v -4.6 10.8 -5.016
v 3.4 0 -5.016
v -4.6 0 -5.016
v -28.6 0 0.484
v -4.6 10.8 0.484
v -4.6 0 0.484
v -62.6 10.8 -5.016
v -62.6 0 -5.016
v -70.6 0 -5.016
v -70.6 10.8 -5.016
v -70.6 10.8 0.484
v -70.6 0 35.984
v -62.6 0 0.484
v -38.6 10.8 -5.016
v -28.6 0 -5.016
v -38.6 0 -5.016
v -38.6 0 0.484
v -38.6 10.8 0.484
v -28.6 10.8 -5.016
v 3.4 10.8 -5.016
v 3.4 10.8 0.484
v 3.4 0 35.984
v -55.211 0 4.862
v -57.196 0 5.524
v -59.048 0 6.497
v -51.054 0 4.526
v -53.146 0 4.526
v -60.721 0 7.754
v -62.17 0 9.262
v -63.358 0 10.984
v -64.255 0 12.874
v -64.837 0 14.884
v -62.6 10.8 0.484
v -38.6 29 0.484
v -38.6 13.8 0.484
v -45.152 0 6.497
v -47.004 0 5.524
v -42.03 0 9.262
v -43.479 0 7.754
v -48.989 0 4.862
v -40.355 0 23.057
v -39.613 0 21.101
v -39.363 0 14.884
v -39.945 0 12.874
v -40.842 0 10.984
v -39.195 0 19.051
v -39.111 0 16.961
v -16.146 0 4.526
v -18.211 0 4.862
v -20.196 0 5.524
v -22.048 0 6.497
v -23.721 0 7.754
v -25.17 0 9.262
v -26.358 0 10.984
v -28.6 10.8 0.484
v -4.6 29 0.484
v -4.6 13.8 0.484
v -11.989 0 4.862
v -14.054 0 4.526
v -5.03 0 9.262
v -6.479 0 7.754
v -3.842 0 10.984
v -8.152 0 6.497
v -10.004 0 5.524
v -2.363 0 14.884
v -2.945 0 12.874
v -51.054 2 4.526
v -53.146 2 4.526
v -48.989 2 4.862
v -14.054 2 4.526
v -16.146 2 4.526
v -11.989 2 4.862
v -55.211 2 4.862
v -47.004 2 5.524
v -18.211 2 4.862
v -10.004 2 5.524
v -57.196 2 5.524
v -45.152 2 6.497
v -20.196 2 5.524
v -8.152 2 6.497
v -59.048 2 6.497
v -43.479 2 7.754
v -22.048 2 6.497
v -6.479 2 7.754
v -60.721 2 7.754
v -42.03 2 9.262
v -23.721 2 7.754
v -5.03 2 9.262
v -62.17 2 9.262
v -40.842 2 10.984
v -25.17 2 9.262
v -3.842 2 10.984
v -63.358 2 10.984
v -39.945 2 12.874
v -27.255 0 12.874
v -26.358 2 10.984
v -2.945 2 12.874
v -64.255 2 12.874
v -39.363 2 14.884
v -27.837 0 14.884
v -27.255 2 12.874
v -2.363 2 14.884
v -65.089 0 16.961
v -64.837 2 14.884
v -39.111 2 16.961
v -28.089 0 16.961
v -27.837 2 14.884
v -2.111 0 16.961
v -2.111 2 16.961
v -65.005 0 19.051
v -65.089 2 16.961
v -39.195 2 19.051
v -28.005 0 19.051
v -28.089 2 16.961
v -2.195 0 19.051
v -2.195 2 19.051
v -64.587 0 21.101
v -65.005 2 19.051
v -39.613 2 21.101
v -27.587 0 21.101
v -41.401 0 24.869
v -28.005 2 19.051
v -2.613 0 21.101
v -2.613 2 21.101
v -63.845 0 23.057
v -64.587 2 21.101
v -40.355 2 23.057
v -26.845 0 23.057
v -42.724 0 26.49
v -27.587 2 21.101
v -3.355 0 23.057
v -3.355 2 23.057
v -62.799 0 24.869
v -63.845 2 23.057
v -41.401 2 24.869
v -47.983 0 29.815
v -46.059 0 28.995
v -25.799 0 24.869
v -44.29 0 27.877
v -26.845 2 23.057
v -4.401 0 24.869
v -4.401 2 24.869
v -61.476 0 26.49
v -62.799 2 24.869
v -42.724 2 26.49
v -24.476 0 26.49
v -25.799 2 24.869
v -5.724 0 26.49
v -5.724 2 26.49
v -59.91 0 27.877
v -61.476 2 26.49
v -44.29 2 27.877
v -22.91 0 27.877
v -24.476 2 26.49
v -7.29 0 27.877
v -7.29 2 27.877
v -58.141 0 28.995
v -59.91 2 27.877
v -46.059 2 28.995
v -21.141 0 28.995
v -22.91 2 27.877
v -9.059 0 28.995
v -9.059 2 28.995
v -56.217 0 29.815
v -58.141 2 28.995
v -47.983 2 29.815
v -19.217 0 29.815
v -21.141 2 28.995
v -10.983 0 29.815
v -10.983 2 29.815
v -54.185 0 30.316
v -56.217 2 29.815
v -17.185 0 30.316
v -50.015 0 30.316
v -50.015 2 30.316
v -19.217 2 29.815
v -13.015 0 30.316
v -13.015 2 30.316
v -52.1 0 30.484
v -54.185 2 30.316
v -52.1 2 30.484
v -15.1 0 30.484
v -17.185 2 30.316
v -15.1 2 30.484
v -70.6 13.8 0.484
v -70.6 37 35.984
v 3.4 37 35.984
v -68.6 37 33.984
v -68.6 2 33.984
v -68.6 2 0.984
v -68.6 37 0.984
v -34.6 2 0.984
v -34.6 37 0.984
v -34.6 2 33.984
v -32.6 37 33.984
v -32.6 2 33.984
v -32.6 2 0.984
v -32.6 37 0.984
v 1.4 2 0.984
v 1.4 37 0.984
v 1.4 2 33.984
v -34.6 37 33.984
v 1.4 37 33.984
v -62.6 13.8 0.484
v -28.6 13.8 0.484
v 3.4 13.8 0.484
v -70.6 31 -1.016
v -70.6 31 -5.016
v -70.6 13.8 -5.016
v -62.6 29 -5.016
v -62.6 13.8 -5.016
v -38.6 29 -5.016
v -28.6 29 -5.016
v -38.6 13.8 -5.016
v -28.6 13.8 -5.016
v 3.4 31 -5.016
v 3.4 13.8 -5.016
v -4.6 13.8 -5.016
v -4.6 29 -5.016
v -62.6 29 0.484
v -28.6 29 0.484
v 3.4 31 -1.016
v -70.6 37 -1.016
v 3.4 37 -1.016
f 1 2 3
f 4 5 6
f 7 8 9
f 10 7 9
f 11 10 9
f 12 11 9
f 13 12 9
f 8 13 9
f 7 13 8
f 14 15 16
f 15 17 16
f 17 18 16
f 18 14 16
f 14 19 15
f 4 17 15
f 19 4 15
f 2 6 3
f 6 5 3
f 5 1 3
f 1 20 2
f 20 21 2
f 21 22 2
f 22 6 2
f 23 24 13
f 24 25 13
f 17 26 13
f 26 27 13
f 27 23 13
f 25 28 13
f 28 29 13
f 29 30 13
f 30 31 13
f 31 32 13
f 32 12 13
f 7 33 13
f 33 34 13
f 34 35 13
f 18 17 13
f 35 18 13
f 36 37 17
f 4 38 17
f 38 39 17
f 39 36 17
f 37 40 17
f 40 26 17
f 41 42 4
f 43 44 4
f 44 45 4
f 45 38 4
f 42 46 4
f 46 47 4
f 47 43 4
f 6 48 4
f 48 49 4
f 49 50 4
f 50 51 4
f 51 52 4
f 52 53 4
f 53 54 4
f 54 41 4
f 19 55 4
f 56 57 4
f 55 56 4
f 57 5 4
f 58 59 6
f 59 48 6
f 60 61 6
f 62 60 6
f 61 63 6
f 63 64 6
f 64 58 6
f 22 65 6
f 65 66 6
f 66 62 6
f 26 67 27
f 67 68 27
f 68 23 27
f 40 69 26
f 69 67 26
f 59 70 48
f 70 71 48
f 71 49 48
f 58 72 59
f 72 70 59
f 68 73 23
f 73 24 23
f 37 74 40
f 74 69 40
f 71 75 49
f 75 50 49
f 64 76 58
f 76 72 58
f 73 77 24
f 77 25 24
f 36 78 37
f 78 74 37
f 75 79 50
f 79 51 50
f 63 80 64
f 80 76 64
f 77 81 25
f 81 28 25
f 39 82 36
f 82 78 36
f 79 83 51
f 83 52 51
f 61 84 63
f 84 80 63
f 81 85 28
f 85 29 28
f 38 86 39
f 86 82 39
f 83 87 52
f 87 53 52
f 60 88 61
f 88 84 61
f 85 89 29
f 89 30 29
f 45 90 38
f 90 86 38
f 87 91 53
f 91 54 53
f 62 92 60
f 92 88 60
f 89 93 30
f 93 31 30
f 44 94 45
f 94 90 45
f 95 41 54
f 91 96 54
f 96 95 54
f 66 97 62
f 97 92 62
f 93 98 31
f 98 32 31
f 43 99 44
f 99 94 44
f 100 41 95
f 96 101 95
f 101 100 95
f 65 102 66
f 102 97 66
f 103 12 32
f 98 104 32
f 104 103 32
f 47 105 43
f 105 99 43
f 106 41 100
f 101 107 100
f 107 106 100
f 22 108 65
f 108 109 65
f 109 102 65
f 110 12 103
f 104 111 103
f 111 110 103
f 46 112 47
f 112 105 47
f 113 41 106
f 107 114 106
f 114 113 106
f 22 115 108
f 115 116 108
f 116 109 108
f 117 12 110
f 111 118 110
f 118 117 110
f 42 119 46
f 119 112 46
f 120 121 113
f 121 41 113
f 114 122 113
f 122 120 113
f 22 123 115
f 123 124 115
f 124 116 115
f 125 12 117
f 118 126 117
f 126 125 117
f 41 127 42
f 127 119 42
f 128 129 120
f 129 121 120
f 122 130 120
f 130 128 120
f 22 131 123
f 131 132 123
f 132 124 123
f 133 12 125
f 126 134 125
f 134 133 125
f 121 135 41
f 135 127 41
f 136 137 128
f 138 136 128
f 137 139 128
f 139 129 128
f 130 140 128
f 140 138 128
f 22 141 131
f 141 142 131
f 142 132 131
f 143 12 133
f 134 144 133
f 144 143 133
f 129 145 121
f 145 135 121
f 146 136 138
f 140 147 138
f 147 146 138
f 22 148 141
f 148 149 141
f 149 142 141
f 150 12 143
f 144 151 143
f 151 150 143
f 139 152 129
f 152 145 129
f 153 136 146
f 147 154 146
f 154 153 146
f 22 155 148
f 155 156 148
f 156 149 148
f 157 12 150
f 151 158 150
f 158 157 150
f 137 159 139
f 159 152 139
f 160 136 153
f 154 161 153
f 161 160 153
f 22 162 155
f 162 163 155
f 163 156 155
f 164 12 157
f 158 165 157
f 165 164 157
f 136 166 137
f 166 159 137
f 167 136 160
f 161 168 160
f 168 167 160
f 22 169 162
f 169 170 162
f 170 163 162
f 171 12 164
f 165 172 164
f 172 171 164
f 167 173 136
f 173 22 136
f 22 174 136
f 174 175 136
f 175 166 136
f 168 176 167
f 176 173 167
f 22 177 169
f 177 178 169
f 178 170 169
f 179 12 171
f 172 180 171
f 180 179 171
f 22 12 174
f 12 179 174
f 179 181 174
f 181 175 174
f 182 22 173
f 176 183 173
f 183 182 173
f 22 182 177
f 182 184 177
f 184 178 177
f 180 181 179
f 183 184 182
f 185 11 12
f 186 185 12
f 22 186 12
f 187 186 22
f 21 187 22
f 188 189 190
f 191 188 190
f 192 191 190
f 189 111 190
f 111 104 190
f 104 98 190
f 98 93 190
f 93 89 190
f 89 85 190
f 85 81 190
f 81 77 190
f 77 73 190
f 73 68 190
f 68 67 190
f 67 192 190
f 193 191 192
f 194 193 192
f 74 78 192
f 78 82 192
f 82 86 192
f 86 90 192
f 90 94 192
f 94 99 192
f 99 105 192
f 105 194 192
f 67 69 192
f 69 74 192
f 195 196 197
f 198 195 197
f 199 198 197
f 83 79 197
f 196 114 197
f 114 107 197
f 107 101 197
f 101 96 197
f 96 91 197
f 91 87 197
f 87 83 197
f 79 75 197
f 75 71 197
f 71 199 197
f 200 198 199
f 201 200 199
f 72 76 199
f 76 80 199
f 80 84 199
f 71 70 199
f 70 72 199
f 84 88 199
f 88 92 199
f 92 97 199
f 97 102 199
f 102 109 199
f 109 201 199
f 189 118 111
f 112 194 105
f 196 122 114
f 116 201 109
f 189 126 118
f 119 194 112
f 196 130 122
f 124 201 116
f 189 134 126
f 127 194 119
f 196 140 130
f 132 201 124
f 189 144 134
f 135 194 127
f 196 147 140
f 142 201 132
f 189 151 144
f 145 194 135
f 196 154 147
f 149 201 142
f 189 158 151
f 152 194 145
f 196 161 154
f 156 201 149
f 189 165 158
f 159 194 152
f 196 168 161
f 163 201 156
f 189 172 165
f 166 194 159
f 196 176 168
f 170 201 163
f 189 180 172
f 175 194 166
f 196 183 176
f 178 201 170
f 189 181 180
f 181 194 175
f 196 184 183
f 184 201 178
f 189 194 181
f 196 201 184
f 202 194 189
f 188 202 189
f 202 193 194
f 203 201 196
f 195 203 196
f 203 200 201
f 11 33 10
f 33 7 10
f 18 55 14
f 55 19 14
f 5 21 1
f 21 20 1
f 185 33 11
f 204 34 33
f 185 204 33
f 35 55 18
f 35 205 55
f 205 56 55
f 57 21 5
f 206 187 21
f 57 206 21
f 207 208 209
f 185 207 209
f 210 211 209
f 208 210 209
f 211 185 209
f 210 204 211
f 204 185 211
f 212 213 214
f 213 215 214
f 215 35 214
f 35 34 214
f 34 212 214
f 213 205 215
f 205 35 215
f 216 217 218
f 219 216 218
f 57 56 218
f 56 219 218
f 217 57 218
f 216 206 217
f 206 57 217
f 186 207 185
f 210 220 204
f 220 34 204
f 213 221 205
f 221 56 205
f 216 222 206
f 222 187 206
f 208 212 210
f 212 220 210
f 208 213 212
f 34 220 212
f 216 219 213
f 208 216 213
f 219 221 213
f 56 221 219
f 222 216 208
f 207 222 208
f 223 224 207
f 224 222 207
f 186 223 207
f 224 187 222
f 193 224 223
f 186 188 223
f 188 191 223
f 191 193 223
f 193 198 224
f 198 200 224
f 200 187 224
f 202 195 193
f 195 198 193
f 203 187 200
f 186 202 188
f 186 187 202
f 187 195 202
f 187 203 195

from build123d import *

# Parameters (mm, degrees)
SKETCH1_W           = 74
SKETCH1_H           = 37
BOSS_EXTRUDE1_DEPTH = 37
SKETCH3_W           = 34
SKETCH3_H           = 33
CUT_EXTRUDE1_DEPTH  = 35
SKETCH5_R           = 13
CUT_EXTRUDE2_DEPTH  = 3.5
SKETCH6_W           = 74
SKETCH6_H           = 31
BOSS_EXTRUDE2_DEPTH = 4
CUT_EXTRUDE3_DEPTH  = 5.5


with BuildPart() as part:
    # Sketch1 → Boss-Extrude1 (new body)
    with BuildSketch(Plane(origin=(0, 0, 0), x_dir=(1, 0, 0), z_dir=(0, 1, 0))):
        with Locations((-33.6, -17.484146341)):
            Rectangle(SKETCH1_W, SKETCH1_H)
    extrude(amount=BOSS_EXTRUDE1_DEPTH)

    # Sketch3 → Cut-Extrude1 (cut)
    with BuildSketch(Plane(origin=(0, 37, 0), x_dir=(1, 0, 0), z_dir=(0, 1, 0))):
        with Locations((-51.6, -17.484146341)):
            Rectangle(SKETCH3_W, SKETCH3_H)
        with Locations((-15.6, -17.484146341)):
            Rectangle(SKETCH3_W, SKETCH3_H)
    extrude(amount=-CUT_EXTRUDE1_DEPTH, mode=Mode.SUBTRACT)

    # Sketch5 → Cut-Extrude2 (cut)
    with BuildSketch(Plane(origin=(0, 2, 0), x_dir=(1, 0, 0), z_dir=(0, 1, 0))):
        with Locations(Location((-15.1, -17.484146341, 0), (0, 0, 270))):
            Circle(SKETCH5_R)
        with Locations(Location((-52.1, -17.484146341, 0), (0, 0, 270))):
            Circle(SKETCH5_R)
    extrude(amount=-CUT_EXTRUDE2_DEPTH, mode=Mode.SUBTRACT)

    # Sketch6 → Boss-Extrude2 (add)
    with BuildSketch(Plane(origin=(0, 0, -1.015853659), x_dir=(-1, 0, 0), z_dir=(0, 0, -1))):
        with Locations((33.6, 15.5)):
            Rectangle(SKETCH6_W, SKETCH6_H)
    extrude(amount=BOSS_EXTRUDE2_DEPTH)

    # Sketch8 → Cut-Extrude3 (cut)
    with BuildSketch(Plane(origin=(0, 0, -5.015853659), x_dir=(-1, 0, 0), z_dir=(0, 0, -1))):
        Polygon((4.6, 29), (28.6, 29), (28.6, 13.8), (38.6, 13.8), (38.6, 29), (62.6, 29), (62.6, 13.8), (70.6, 13.8), (70.6, 10.8), (62.6, 10.8), (62.6, 0), (38.6, 0), (38.6, 10.8), (28.6, 10.8), (28.6, 0), (4.6, 0), (4.6, 10.8), (-3.4, 10.8), (-3.4, 13.8), (4.6, 13.8), align=None)
    extrude(amount=-CUT_EXTRUDE3_DEPTH, mode=Mode.SUBTRACT)


solid = part.part
